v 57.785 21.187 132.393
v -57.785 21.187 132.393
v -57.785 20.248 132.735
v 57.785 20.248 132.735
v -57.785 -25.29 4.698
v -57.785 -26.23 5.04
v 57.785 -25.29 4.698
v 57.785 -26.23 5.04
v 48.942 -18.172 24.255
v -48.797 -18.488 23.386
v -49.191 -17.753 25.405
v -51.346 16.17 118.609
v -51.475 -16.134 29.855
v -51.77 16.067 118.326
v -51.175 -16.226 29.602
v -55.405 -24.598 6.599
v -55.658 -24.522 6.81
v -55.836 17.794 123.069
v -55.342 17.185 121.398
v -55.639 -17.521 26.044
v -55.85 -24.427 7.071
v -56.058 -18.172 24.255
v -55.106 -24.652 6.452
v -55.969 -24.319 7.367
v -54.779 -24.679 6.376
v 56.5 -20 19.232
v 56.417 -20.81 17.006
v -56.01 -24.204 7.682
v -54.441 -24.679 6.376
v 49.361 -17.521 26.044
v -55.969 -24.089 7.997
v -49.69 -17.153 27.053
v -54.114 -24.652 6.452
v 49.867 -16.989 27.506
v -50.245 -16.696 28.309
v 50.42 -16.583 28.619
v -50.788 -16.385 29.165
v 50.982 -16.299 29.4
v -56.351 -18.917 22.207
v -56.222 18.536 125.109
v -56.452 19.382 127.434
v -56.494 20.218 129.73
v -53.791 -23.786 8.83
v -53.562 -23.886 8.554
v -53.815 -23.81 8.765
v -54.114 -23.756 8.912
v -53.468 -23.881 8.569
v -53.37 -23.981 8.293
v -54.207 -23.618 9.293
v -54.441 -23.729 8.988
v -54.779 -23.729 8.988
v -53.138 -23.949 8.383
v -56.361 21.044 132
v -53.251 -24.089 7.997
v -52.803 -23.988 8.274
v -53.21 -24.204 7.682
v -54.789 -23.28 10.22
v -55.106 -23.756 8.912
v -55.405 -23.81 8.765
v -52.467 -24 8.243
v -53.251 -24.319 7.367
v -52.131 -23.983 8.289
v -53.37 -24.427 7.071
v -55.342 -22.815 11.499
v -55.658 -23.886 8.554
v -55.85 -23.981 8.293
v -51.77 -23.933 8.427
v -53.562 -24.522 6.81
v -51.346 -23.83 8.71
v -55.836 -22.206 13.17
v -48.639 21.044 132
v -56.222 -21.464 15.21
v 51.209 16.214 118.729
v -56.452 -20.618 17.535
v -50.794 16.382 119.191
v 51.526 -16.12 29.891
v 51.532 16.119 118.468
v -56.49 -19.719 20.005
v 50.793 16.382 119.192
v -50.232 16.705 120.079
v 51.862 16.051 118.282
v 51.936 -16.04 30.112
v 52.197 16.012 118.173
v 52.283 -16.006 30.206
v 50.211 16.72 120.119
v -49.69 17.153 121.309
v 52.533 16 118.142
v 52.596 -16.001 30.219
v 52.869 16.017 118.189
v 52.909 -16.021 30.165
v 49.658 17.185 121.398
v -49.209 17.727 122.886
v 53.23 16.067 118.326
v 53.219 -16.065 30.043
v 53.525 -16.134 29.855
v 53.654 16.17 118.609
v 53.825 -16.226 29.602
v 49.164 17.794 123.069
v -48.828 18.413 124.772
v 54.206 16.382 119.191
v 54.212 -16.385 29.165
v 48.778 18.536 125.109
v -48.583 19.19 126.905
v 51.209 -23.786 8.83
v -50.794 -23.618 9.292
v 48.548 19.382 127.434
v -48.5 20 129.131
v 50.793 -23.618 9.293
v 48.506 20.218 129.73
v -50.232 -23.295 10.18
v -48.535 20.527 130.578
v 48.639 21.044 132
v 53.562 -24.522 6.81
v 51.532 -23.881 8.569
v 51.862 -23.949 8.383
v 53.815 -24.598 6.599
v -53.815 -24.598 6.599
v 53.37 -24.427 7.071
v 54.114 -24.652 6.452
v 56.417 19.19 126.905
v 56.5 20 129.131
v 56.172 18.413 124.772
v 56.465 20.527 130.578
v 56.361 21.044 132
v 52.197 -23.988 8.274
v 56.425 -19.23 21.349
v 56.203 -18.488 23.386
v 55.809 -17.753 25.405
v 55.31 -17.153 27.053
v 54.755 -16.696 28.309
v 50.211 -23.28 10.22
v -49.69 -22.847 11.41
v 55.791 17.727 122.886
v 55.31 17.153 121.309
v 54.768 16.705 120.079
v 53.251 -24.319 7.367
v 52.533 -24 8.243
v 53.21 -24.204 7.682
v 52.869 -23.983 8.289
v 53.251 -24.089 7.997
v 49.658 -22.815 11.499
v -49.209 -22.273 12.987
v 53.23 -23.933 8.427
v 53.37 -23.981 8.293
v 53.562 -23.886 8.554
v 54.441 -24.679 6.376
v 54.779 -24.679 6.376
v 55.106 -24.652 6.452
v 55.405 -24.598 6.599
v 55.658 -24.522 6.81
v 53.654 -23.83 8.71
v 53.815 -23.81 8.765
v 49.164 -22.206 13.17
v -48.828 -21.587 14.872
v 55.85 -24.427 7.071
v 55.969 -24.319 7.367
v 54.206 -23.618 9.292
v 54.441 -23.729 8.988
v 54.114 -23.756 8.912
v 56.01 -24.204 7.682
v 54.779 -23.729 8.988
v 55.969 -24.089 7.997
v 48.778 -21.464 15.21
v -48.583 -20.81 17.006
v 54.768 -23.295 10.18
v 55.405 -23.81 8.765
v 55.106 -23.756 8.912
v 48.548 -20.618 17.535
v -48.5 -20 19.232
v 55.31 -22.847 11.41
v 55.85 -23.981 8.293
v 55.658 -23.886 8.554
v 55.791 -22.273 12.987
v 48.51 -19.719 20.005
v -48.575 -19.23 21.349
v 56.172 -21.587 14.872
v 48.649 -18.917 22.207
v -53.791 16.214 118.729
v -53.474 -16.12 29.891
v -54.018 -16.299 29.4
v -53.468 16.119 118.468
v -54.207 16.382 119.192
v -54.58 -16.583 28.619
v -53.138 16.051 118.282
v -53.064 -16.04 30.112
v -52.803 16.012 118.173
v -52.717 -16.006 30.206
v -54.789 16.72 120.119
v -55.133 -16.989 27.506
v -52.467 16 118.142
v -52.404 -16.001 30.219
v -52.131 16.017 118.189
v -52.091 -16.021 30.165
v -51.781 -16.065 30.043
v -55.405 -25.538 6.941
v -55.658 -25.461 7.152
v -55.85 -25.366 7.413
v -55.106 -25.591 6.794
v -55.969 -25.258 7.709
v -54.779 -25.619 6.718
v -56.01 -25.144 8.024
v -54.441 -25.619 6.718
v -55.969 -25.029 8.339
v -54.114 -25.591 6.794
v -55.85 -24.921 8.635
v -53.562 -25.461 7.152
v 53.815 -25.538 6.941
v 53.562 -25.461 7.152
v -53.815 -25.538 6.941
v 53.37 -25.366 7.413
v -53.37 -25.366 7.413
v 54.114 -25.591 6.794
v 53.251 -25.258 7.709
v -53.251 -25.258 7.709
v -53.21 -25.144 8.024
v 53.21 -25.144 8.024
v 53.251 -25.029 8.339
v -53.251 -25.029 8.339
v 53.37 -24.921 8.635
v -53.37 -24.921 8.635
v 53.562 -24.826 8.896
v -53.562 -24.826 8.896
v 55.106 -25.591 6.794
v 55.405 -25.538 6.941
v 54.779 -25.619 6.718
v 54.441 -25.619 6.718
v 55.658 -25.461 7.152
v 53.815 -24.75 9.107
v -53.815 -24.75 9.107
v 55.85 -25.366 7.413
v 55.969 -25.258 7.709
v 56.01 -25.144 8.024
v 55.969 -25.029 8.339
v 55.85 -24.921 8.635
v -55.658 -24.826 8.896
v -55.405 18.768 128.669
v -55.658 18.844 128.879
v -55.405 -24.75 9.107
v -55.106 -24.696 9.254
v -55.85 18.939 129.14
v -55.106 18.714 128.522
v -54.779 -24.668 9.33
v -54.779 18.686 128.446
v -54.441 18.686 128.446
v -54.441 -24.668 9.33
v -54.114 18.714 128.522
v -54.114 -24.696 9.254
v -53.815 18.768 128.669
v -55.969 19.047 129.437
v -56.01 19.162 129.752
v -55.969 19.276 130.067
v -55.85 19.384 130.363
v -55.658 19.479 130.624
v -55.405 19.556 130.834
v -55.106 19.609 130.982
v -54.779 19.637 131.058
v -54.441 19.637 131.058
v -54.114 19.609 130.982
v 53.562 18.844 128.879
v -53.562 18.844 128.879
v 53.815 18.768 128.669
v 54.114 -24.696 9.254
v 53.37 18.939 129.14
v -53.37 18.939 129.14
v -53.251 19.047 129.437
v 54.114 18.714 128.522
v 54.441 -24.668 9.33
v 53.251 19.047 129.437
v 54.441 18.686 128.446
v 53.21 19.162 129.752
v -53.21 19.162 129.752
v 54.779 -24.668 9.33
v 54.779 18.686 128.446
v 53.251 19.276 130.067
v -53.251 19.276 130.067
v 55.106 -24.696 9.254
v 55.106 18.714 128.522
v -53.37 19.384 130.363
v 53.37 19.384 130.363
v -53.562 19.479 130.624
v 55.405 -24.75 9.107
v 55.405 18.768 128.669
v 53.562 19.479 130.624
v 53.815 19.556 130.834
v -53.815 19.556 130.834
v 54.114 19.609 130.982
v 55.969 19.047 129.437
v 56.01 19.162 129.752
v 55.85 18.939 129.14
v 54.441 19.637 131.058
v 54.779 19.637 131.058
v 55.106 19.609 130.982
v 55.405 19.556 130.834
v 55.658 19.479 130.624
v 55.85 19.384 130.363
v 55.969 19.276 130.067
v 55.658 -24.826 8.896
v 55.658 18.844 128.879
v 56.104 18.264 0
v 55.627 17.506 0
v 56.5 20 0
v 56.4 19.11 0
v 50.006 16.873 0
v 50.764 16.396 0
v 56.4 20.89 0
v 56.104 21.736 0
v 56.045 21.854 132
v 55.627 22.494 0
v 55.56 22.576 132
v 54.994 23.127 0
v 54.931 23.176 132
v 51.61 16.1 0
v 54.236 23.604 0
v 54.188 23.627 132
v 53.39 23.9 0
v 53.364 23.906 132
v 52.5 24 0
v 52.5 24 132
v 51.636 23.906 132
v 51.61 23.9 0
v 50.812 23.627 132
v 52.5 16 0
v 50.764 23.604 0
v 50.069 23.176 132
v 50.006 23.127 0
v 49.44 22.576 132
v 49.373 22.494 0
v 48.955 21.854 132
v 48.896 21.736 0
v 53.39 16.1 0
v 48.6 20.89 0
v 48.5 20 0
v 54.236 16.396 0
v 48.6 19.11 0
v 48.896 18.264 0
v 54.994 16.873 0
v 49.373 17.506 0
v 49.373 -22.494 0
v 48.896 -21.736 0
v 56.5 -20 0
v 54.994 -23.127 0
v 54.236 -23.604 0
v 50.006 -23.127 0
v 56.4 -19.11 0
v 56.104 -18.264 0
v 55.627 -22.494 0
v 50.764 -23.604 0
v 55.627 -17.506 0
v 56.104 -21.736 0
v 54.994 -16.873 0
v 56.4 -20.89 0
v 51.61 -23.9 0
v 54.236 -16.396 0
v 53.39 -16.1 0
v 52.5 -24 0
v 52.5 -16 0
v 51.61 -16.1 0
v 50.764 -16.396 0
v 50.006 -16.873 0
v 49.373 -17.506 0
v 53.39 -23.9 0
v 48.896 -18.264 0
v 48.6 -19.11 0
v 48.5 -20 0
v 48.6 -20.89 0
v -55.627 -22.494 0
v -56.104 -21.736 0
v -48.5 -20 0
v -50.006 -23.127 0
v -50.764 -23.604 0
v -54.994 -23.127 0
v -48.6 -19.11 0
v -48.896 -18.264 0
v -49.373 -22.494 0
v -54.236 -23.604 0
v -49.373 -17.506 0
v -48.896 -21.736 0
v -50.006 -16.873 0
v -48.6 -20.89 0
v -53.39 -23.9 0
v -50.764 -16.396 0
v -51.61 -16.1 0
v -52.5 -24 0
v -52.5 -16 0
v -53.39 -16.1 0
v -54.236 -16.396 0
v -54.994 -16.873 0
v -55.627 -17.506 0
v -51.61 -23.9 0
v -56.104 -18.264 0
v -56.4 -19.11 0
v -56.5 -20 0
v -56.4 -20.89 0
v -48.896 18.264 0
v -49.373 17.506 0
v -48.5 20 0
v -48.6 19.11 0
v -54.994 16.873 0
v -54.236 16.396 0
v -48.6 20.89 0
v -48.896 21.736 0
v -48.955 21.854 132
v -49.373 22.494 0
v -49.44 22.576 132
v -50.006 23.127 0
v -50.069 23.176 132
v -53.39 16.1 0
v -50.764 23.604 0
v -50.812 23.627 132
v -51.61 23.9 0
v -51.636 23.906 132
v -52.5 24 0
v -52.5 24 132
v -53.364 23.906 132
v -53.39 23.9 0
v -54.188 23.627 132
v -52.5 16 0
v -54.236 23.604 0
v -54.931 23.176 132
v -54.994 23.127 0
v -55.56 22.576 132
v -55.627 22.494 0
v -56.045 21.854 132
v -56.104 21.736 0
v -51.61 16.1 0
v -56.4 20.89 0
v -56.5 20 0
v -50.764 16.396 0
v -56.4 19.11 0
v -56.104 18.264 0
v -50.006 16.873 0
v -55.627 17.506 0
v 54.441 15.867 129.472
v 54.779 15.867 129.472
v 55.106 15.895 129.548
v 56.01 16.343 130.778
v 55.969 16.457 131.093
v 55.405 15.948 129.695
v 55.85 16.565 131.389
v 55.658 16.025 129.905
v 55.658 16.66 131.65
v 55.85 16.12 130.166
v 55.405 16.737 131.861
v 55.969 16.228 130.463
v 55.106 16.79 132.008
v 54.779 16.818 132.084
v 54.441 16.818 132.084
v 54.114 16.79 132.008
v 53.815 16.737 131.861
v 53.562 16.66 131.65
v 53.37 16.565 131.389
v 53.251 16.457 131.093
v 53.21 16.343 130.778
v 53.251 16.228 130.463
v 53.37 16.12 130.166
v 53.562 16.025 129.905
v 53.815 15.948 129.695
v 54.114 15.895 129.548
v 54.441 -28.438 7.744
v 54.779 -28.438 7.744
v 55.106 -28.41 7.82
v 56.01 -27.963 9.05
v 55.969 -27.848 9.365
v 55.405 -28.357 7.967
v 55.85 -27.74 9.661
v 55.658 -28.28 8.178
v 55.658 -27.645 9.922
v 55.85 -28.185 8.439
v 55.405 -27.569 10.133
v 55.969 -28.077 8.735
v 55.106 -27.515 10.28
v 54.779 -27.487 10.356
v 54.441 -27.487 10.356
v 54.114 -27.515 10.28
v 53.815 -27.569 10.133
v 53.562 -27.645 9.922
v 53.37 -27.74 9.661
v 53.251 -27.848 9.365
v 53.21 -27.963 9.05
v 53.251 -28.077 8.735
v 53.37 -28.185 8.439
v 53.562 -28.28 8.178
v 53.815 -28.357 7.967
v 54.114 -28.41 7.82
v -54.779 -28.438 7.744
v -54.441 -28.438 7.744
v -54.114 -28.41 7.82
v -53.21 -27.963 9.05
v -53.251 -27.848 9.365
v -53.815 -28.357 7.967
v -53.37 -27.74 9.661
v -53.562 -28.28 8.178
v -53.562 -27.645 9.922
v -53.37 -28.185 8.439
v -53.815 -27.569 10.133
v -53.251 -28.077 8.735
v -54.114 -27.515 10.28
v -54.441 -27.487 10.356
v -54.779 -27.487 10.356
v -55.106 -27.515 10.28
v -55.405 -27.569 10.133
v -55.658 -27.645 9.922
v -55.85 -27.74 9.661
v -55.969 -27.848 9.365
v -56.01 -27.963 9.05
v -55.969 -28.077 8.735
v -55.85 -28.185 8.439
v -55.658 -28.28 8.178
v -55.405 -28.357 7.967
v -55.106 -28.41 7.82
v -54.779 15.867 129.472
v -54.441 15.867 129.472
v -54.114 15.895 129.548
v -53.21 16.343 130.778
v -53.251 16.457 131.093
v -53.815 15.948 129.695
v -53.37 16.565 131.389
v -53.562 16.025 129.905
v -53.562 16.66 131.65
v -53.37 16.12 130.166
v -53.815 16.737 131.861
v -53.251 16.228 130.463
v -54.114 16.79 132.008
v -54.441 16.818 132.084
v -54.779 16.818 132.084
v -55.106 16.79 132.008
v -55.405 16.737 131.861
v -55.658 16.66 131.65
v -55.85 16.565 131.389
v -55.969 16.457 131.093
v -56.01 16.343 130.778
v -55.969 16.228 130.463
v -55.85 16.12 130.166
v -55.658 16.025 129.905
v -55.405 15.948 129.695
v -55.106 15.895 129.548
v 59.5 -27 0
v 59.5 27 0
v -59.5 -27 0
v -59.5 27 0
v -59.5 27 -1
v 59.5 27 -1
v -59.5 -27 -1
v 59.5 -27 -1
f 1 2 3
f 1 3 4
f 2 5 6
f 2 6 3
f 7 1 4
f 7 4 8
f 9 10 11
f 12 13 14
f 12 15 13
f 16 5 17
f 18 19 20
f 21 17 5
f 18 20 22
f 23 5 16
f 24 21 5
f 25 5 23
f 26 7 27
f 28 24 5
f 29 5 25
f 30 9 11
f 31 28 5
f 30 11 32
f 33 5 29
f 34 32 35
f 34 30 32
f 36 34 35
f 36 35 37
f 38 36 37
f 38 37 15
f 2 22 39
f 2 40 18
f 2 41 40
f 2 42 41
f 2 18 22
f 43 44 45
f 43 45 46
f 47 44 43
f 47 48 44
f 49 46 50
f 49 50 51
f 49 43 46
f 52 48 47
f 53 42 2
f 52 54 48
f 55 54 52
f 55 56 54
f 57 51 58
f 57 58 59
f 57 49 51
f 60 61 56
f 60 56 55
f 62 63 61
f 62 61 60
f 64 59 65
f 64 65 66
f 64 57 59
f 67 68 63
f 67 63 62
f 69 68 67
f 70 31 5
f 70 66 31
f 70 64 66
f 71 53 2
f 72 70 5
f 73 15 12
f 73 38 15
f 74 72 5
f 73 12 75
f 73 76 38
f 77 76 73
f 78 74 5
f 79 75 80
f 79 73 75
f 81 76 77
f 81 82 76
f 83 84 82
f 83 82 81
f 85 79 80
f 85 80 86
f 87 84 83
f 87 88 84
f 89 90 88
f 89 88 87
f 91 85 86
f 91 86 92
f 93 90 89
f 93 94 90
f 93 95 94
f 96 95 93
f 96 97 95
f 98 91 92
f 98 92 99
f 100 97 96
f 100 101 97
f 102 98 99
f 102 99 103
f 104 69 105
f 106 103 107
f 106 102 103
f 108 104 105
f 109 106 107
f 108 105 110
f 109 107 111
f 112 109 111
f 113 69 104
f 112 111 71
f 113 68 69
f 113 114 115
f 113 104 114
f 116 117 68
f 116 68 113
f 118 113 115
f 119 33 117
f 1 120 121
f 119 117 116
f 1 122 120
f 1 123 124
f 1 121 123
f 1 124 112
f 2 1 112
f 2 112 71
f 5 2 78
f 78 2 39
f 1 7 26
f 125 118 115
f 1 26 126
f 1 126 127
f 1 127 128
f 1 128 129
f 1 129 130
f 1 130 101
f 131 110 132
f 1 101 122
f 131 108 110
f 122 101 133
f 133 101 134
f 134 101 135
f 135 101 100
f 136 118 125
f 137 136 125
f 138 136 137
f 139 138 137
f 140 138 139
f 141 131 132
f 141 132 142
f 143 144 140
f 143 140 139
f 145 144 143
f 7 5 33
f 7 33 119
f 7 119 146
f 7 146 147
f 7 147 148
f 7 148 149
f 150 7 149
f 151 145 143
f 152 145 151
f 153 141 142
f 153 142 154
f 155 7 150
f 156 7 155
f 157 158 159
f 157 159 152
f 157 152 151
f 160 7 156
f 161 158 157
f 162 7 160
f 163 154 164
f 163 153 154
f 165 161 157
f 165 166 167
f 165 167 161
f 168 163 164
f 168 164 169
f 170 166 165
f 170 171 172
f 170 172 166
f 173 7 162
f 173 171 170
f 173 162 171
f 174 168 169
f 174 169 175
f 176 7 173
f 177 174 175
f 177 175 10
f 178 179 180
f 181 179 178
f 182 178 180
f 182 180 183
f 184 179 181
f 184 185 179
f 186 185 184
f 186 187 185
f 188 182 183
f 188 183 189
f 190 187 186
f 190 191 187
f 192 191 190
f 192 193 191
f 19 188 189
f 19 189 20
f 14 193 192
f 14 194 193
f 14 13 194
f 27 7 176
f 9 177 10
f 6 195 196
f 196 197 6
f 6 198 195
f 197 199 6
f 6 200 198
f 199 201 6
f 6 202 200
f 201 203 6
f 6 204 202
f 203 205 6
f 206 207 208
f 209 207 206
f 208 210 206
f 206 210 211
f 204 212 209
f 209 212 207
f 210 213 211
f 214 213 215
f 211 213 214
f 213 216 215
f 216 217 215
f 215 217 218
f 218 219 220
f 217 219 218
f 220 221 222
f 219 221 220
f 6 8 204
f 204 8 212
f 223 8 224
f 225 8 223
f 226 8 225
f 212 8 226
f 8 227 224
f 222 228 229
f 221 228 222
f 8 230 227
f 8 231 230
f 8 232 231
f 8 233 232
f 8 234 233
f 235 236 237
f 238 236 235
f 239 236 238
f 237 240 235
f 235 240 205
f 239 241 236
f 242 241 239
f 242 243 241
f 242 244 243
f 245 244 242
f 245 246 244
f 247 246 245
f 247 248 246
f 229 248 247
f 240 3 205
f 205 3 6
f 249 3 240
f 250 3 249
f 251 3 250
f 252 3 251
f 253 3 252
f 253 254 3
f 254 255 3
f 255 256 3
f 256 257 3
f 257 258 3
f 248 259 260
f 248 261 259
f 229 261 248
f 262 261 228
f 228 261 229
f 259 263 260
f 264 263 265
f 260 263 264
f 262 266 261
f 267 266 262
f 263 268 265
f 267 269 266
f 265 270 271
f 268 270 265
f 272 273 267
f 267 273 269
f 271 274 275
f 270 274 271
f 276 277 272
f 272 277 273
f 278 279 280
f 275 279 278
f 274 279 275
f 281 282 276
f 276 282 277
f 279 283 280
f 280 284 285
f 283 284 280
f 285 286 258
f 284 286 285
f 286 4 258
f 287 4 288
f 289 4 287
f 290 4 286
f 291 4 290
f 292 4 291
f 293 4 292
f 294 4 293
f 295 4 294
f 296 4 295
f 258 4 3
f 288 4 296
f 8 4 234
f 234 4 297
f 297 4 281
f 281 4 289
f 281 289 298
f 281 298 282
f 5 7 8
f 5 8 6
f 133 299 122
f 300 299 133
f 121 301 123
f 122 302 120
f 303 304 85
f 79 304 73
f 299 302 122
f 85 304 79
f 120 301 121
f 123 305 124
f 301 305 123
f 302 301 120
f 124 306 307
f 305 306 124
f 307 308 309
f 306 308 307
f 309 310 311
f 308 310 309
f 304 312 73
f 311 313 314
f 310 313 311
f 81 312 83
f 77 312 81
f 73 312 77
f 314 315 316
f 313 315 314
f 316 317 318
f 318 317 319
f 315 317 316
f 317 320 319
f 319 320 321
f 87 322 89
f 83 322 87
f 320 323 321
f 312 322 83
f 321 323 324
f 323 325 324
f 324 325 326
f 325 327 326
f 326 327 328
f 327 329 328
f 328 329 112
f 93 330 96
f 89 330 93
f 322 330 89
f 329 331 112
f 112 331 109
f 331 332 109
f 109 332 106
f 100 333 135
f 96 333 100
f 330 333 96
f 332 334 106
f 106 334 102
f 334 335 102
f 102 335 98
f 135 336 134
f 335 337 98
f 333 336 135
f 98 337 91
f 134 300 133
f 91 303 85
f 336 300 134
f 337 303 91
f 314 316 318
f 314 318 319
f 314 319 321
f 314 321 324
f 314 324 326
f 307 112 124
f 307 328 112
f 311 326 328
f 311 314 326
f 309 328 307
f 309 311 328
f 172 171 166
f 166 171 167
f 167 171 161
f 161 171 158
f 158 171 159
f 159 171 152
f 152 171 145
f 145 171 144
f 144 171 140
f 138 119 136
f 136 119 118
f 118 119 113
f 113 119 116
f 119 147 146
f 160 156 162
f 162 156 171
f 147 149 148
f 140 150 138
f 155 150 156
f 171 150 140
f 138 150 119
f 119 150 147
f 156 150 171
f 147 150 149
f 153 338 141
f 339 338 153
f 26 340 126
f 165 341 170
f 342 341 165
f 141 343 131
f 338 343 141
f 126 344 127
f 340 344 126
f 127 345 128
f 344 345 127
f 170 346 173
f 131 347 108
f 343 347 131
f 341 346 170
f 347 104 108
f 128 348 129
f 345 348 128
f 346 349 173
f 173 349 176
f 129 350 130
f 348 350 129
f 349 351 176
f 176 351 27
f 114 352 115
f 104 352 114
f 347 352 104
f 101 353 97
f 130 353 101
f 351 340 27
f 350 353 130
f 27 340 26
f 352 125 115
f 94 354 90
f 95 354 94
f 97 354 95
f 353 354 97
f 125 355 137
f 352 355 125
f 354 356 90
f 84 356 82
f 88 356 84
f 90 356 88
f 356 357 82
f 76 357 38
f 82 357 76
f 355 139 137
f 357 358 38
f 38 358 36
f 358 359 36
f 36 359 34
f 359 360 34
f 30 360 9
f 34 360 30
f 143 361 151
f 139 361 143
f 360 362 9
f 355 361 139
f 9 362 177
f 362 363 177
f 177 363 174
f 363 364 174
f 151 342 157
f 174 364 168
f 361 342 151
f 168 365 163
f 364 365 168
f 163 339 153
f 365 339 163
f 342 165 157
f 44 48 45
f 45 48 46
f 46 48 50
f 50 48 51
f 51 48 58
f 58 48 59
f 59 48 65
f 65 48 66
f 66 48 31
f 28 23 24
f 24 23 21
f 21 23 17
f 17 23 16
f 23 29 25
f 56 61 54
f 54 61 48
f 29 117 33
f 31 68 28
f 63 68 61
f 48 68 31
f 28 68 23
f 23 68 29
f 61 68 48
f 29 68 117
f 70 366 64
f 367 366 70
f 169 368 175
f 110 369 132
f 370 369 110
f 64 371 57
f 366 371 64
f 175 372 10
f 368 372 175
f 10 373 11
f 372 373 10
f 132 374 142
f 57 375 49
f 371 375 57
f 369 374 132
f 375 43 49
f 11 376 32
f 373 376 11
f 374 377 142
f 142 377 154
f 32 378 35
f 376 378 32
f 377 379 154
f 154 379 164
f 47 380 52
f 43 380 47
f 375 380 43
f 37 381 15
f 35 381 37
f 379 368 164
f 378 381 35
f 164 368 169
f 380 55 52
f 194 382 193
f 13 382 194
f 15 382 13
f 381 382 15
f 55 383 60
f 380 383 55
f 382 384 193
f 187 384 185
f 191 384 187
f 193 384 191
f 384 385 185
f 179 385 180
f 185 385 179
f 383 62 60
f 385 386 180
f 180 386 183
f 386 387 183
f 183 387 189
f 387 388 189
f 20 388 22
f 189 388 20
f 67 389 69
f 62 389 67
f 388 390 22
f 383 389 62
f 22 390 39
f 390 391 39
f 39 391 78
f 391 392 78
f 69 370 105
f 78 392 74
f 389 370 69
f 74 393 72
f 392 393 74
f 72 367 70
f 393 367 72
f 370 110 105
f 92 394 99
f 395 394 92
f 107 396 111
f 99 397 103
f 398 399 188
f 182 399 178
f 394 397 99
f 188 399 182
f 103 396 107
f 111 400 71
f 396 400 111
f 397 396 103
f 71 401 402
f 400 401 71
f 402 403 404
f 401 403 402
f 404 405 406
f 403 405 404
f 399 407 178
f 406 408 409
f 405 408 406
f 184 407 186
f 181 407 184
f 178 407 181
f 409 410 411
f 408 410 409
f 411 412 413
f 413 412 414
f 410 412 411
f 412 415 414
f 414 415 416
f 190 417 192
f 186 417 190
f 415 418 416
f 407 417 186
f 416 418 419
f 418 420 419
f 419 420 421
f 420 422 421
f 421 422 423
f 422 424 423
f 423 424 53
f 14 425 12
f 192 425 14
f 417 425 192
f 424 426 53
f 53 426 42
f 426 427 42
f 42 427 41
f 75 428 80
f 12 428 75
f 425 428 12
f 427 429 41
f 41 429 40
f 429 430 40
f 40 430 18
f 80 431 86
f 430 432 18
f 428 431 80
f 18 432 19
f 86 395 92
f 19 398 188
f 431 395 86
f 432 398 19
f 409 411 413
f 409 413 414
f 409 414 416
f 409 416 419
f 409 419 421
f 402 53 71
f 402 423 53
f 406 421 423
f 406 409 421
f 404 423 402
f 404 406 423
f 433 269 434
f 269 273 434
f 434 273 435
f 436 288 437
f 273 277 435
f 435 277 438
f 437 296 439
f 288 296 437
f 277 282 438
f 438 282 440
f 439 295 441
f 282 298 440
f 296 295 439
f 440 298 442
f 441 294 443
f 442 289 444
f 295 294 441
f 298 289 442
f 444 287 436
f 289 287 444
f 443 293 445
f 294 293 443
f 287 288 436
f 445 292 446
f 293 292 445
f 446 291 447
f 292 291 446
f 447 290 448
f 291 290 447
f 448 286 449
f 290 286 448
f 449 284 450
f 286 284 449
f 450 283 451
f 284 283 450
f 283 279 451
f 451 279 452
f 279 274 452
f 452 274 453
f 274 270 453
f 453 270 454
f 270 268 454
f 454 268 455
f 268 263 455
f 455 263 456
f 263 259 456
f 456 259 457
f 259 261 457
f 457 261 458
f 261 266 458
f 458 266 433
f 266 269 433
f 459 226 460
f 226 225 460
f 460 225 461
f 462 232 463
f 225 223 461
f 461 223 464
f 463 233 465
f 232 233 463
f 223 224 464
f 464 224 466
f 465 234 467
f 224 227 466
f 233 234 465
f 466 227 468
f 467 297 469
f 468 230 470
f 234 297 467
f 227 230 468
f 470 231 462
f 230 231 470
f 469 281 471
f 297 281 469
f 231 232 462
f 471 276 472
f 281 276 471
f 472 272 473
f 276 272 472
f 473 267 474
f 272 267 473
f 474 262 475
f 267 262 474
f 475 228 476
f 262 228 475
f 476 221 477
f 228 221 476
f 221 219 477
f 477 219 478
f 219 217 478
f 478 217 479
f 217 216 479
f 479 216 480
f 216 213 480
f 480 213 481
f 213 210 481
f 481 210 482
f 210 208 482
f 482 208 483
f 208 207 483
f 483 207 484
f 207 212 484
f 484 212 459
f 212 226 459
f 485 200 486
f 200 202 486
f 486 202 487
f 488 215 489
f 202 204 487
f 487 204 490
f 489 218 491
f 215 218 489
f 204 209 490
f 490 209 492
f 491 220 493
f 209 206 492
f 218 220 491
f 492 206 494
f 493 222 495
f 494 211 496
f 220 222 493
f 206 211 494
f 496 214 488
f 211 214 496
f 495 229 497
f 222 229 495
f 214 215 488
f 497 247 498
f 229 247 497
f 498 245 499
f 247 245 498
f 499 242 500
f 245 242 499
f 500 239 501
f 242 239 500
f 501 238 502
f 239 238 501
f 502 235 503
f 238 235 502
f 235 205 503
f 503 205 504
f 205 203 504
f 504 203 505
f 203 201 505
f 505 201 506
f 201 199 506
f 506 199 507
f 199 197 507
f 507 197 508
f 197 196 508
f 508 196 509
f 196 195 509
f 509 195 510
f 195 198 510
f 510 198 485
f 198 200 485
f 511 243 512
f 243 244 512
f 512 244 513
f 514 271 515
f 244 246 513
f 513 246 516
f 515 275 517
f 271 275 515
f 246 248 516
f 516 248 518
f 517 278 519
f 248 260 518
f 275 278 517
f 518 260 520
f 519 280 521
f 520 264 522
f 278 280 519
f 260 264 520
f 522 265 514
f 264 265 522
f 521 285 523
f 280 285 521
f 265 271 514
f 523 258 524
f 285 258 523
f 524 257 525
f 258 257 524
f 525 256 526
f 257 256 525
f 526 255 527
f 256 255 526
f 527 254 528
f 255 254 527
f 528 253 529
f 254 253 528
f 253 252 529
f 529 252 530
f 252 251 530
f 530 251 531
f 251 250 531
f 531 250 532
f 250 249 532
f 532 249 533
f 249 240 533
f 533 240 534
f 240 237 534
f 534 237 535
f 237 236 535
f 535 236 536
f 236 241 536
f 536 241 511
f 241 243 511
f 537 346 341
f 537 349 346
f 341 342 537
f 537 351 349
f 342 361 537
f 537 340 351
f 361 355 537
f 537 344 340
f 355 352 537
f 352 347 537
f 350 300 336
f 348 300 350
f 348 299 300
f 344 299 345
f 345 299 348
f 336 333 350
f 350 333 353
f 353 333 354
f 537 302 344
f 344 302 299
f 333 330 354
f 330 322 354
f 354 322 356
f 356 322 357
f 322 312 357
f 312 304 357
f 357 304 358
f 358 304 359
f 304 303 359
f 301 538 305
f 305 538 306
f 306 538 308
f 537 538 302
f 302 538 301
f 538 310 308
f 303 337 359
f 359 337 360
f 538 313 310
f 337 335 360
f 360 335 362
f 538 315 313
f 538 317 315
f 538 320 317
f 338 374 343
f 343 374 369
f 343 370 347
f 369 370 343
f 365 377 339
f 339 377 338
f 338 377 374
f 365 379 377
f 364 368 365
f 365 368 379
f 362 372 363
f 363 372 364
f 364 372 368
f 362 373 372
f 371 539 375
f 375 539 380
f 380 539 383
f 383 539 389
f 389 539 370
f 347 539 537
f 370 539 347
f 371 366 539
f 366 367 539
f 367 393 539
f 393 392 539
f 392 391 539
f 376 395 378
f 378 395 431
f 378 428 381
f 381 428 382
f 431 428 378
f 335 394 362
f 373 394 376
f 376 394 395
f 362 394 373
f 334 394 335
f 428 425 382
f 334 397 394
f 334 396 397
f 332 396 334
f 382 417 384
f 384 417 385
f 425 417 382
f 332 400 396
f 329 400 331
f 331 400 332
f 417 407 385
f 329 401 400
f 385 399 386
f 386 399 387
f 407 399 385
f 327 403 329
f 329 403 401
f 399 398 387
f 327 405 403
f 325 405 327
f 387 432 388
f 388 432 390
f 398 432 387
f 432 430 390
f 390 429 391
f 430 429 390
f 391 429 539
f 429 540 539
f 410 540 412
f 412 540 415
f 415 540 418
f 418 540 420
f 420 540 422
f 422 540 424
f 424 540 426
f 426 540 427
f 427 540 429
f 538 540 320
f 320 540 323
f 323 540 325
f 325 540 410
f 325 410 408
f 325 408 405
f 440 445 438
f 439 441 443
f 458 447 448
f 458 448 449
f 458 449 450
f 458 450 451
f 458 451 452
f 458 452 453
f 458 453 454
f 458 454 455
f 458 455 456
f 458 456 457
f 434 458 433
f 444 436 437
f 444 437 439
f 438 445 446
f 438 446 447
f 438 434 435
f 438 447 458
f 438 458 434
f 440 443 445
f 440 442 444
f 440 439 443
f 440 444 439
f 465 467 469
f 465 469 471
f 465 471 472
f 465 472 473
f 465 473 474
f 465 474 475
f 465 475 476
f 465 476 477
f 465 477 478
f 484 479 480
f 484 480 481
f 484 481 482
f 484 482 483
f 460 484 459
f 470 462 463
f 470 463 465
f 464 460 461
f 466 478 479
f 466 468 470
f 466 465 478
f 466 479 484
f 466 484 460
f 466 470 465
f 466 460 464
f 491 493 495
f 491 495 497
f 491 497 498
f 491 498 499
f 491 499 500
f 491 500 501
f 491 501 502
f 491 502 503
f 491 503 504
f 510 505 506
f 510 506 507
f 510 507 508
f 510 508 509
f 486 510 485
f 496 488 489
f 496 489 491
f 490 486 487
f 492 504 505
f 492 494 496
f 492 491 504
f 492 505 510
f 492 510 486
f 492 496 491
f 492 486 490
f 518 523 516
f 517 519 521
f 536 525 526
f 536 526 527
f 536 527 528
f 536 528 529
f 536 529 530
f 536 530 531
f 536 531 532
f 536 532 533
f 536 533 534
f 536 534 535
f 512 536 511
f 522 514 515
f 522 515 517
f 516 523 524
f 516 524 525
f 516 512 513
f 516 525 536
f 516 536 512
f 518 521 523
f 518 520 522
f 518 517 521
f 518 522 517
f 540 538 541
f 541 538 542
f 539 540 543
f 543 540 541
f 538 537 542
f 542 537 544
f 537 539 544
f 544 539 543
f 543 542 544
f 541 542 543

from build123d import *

# Parameters (mm, degrees)
SKETCH001_W  = 119
SKETCH001_H  = 54
PAD_DEPTH    = 1
SKETCH_R     = 4
PAD001_DEPTH = 132
SKETCH002_W  = 115.57
SKETCH002_H  = 135.89
POCKET_DEPTH = 50
PAD002_DEPTH = 1
SKETCH003_R  = 1.4
PAD003_DEPTH = 4


with BuildPart() as part:
    # Sketch001 → Pad (new body)
    with BuildSketch(Plane.XY):
        Rectangle(SKETCH001_W, SKETCH001_H)
    extrude(amount=-PAD_DEPTH)

    # Sketch → Pad001 (join)
    with BuildSketch(Plane.XY):
        with Locations((-52.5, 20)):
            Circle(SKETCH_R)
        with Locations((52.5, 20)):
            Circle(SKETCH_R)
        with Locations((52.5, -20)):
            Circle(SKETCH_R)
        with Locations((-52.5, -20)):
            Circle(SKETCH_R)
    extrude(amount=PAD001_DEPTH)

    # Sketch002 (on DatumPlane) → Pocket (cut)
    with BuildSketch(Plane(origin=(0, -27, 0), x_dir=(1, 0, 0), z_dir=(0, -0.939693, 0.34202))):
        with Locations((0, 72.945)):
            Rectangle(SKETCH002_W, SKETCH002_H)
    extrude(amount=POCKET_DEPTH, mode=Mode.SUBTRACT)

    # Sketch002 (on DatumPlane) → Pad002 (join)
    with BuildSketch(Plane(origin=(0, -27, 0), x_dir=(1, 0, 0), z_dir=(0, -0.939693, 0.34202))):
        with Locations((0, 72.945)):
            Rectangle(SKETCH002_W, SKETCH002_H)
    extrude(amount=PAD002_DEPTH)

    # Sketch003 (on DatumPlane) → Pad003 (join)
    with BuildSketch(Plane(origin=(0, -27, 0), x_dir=(1, 0, 0), z_dir=(0, -0.939693, 0.34202))):
        with Locations((-54.61, 137.715)):
            Circle(SKETCH003_R)
        with Locations((54.61, 137.715)):
            Circle(SKETCH003_R)
        with Locations((54.61, 8.175)):
            Circle(SKETCH003_R)
        with Locations((-54.61, 8.175)):
            Circle(SKETCH003_R)
    extrude(amount=PAD003_DEPTH)


solid = part.part
